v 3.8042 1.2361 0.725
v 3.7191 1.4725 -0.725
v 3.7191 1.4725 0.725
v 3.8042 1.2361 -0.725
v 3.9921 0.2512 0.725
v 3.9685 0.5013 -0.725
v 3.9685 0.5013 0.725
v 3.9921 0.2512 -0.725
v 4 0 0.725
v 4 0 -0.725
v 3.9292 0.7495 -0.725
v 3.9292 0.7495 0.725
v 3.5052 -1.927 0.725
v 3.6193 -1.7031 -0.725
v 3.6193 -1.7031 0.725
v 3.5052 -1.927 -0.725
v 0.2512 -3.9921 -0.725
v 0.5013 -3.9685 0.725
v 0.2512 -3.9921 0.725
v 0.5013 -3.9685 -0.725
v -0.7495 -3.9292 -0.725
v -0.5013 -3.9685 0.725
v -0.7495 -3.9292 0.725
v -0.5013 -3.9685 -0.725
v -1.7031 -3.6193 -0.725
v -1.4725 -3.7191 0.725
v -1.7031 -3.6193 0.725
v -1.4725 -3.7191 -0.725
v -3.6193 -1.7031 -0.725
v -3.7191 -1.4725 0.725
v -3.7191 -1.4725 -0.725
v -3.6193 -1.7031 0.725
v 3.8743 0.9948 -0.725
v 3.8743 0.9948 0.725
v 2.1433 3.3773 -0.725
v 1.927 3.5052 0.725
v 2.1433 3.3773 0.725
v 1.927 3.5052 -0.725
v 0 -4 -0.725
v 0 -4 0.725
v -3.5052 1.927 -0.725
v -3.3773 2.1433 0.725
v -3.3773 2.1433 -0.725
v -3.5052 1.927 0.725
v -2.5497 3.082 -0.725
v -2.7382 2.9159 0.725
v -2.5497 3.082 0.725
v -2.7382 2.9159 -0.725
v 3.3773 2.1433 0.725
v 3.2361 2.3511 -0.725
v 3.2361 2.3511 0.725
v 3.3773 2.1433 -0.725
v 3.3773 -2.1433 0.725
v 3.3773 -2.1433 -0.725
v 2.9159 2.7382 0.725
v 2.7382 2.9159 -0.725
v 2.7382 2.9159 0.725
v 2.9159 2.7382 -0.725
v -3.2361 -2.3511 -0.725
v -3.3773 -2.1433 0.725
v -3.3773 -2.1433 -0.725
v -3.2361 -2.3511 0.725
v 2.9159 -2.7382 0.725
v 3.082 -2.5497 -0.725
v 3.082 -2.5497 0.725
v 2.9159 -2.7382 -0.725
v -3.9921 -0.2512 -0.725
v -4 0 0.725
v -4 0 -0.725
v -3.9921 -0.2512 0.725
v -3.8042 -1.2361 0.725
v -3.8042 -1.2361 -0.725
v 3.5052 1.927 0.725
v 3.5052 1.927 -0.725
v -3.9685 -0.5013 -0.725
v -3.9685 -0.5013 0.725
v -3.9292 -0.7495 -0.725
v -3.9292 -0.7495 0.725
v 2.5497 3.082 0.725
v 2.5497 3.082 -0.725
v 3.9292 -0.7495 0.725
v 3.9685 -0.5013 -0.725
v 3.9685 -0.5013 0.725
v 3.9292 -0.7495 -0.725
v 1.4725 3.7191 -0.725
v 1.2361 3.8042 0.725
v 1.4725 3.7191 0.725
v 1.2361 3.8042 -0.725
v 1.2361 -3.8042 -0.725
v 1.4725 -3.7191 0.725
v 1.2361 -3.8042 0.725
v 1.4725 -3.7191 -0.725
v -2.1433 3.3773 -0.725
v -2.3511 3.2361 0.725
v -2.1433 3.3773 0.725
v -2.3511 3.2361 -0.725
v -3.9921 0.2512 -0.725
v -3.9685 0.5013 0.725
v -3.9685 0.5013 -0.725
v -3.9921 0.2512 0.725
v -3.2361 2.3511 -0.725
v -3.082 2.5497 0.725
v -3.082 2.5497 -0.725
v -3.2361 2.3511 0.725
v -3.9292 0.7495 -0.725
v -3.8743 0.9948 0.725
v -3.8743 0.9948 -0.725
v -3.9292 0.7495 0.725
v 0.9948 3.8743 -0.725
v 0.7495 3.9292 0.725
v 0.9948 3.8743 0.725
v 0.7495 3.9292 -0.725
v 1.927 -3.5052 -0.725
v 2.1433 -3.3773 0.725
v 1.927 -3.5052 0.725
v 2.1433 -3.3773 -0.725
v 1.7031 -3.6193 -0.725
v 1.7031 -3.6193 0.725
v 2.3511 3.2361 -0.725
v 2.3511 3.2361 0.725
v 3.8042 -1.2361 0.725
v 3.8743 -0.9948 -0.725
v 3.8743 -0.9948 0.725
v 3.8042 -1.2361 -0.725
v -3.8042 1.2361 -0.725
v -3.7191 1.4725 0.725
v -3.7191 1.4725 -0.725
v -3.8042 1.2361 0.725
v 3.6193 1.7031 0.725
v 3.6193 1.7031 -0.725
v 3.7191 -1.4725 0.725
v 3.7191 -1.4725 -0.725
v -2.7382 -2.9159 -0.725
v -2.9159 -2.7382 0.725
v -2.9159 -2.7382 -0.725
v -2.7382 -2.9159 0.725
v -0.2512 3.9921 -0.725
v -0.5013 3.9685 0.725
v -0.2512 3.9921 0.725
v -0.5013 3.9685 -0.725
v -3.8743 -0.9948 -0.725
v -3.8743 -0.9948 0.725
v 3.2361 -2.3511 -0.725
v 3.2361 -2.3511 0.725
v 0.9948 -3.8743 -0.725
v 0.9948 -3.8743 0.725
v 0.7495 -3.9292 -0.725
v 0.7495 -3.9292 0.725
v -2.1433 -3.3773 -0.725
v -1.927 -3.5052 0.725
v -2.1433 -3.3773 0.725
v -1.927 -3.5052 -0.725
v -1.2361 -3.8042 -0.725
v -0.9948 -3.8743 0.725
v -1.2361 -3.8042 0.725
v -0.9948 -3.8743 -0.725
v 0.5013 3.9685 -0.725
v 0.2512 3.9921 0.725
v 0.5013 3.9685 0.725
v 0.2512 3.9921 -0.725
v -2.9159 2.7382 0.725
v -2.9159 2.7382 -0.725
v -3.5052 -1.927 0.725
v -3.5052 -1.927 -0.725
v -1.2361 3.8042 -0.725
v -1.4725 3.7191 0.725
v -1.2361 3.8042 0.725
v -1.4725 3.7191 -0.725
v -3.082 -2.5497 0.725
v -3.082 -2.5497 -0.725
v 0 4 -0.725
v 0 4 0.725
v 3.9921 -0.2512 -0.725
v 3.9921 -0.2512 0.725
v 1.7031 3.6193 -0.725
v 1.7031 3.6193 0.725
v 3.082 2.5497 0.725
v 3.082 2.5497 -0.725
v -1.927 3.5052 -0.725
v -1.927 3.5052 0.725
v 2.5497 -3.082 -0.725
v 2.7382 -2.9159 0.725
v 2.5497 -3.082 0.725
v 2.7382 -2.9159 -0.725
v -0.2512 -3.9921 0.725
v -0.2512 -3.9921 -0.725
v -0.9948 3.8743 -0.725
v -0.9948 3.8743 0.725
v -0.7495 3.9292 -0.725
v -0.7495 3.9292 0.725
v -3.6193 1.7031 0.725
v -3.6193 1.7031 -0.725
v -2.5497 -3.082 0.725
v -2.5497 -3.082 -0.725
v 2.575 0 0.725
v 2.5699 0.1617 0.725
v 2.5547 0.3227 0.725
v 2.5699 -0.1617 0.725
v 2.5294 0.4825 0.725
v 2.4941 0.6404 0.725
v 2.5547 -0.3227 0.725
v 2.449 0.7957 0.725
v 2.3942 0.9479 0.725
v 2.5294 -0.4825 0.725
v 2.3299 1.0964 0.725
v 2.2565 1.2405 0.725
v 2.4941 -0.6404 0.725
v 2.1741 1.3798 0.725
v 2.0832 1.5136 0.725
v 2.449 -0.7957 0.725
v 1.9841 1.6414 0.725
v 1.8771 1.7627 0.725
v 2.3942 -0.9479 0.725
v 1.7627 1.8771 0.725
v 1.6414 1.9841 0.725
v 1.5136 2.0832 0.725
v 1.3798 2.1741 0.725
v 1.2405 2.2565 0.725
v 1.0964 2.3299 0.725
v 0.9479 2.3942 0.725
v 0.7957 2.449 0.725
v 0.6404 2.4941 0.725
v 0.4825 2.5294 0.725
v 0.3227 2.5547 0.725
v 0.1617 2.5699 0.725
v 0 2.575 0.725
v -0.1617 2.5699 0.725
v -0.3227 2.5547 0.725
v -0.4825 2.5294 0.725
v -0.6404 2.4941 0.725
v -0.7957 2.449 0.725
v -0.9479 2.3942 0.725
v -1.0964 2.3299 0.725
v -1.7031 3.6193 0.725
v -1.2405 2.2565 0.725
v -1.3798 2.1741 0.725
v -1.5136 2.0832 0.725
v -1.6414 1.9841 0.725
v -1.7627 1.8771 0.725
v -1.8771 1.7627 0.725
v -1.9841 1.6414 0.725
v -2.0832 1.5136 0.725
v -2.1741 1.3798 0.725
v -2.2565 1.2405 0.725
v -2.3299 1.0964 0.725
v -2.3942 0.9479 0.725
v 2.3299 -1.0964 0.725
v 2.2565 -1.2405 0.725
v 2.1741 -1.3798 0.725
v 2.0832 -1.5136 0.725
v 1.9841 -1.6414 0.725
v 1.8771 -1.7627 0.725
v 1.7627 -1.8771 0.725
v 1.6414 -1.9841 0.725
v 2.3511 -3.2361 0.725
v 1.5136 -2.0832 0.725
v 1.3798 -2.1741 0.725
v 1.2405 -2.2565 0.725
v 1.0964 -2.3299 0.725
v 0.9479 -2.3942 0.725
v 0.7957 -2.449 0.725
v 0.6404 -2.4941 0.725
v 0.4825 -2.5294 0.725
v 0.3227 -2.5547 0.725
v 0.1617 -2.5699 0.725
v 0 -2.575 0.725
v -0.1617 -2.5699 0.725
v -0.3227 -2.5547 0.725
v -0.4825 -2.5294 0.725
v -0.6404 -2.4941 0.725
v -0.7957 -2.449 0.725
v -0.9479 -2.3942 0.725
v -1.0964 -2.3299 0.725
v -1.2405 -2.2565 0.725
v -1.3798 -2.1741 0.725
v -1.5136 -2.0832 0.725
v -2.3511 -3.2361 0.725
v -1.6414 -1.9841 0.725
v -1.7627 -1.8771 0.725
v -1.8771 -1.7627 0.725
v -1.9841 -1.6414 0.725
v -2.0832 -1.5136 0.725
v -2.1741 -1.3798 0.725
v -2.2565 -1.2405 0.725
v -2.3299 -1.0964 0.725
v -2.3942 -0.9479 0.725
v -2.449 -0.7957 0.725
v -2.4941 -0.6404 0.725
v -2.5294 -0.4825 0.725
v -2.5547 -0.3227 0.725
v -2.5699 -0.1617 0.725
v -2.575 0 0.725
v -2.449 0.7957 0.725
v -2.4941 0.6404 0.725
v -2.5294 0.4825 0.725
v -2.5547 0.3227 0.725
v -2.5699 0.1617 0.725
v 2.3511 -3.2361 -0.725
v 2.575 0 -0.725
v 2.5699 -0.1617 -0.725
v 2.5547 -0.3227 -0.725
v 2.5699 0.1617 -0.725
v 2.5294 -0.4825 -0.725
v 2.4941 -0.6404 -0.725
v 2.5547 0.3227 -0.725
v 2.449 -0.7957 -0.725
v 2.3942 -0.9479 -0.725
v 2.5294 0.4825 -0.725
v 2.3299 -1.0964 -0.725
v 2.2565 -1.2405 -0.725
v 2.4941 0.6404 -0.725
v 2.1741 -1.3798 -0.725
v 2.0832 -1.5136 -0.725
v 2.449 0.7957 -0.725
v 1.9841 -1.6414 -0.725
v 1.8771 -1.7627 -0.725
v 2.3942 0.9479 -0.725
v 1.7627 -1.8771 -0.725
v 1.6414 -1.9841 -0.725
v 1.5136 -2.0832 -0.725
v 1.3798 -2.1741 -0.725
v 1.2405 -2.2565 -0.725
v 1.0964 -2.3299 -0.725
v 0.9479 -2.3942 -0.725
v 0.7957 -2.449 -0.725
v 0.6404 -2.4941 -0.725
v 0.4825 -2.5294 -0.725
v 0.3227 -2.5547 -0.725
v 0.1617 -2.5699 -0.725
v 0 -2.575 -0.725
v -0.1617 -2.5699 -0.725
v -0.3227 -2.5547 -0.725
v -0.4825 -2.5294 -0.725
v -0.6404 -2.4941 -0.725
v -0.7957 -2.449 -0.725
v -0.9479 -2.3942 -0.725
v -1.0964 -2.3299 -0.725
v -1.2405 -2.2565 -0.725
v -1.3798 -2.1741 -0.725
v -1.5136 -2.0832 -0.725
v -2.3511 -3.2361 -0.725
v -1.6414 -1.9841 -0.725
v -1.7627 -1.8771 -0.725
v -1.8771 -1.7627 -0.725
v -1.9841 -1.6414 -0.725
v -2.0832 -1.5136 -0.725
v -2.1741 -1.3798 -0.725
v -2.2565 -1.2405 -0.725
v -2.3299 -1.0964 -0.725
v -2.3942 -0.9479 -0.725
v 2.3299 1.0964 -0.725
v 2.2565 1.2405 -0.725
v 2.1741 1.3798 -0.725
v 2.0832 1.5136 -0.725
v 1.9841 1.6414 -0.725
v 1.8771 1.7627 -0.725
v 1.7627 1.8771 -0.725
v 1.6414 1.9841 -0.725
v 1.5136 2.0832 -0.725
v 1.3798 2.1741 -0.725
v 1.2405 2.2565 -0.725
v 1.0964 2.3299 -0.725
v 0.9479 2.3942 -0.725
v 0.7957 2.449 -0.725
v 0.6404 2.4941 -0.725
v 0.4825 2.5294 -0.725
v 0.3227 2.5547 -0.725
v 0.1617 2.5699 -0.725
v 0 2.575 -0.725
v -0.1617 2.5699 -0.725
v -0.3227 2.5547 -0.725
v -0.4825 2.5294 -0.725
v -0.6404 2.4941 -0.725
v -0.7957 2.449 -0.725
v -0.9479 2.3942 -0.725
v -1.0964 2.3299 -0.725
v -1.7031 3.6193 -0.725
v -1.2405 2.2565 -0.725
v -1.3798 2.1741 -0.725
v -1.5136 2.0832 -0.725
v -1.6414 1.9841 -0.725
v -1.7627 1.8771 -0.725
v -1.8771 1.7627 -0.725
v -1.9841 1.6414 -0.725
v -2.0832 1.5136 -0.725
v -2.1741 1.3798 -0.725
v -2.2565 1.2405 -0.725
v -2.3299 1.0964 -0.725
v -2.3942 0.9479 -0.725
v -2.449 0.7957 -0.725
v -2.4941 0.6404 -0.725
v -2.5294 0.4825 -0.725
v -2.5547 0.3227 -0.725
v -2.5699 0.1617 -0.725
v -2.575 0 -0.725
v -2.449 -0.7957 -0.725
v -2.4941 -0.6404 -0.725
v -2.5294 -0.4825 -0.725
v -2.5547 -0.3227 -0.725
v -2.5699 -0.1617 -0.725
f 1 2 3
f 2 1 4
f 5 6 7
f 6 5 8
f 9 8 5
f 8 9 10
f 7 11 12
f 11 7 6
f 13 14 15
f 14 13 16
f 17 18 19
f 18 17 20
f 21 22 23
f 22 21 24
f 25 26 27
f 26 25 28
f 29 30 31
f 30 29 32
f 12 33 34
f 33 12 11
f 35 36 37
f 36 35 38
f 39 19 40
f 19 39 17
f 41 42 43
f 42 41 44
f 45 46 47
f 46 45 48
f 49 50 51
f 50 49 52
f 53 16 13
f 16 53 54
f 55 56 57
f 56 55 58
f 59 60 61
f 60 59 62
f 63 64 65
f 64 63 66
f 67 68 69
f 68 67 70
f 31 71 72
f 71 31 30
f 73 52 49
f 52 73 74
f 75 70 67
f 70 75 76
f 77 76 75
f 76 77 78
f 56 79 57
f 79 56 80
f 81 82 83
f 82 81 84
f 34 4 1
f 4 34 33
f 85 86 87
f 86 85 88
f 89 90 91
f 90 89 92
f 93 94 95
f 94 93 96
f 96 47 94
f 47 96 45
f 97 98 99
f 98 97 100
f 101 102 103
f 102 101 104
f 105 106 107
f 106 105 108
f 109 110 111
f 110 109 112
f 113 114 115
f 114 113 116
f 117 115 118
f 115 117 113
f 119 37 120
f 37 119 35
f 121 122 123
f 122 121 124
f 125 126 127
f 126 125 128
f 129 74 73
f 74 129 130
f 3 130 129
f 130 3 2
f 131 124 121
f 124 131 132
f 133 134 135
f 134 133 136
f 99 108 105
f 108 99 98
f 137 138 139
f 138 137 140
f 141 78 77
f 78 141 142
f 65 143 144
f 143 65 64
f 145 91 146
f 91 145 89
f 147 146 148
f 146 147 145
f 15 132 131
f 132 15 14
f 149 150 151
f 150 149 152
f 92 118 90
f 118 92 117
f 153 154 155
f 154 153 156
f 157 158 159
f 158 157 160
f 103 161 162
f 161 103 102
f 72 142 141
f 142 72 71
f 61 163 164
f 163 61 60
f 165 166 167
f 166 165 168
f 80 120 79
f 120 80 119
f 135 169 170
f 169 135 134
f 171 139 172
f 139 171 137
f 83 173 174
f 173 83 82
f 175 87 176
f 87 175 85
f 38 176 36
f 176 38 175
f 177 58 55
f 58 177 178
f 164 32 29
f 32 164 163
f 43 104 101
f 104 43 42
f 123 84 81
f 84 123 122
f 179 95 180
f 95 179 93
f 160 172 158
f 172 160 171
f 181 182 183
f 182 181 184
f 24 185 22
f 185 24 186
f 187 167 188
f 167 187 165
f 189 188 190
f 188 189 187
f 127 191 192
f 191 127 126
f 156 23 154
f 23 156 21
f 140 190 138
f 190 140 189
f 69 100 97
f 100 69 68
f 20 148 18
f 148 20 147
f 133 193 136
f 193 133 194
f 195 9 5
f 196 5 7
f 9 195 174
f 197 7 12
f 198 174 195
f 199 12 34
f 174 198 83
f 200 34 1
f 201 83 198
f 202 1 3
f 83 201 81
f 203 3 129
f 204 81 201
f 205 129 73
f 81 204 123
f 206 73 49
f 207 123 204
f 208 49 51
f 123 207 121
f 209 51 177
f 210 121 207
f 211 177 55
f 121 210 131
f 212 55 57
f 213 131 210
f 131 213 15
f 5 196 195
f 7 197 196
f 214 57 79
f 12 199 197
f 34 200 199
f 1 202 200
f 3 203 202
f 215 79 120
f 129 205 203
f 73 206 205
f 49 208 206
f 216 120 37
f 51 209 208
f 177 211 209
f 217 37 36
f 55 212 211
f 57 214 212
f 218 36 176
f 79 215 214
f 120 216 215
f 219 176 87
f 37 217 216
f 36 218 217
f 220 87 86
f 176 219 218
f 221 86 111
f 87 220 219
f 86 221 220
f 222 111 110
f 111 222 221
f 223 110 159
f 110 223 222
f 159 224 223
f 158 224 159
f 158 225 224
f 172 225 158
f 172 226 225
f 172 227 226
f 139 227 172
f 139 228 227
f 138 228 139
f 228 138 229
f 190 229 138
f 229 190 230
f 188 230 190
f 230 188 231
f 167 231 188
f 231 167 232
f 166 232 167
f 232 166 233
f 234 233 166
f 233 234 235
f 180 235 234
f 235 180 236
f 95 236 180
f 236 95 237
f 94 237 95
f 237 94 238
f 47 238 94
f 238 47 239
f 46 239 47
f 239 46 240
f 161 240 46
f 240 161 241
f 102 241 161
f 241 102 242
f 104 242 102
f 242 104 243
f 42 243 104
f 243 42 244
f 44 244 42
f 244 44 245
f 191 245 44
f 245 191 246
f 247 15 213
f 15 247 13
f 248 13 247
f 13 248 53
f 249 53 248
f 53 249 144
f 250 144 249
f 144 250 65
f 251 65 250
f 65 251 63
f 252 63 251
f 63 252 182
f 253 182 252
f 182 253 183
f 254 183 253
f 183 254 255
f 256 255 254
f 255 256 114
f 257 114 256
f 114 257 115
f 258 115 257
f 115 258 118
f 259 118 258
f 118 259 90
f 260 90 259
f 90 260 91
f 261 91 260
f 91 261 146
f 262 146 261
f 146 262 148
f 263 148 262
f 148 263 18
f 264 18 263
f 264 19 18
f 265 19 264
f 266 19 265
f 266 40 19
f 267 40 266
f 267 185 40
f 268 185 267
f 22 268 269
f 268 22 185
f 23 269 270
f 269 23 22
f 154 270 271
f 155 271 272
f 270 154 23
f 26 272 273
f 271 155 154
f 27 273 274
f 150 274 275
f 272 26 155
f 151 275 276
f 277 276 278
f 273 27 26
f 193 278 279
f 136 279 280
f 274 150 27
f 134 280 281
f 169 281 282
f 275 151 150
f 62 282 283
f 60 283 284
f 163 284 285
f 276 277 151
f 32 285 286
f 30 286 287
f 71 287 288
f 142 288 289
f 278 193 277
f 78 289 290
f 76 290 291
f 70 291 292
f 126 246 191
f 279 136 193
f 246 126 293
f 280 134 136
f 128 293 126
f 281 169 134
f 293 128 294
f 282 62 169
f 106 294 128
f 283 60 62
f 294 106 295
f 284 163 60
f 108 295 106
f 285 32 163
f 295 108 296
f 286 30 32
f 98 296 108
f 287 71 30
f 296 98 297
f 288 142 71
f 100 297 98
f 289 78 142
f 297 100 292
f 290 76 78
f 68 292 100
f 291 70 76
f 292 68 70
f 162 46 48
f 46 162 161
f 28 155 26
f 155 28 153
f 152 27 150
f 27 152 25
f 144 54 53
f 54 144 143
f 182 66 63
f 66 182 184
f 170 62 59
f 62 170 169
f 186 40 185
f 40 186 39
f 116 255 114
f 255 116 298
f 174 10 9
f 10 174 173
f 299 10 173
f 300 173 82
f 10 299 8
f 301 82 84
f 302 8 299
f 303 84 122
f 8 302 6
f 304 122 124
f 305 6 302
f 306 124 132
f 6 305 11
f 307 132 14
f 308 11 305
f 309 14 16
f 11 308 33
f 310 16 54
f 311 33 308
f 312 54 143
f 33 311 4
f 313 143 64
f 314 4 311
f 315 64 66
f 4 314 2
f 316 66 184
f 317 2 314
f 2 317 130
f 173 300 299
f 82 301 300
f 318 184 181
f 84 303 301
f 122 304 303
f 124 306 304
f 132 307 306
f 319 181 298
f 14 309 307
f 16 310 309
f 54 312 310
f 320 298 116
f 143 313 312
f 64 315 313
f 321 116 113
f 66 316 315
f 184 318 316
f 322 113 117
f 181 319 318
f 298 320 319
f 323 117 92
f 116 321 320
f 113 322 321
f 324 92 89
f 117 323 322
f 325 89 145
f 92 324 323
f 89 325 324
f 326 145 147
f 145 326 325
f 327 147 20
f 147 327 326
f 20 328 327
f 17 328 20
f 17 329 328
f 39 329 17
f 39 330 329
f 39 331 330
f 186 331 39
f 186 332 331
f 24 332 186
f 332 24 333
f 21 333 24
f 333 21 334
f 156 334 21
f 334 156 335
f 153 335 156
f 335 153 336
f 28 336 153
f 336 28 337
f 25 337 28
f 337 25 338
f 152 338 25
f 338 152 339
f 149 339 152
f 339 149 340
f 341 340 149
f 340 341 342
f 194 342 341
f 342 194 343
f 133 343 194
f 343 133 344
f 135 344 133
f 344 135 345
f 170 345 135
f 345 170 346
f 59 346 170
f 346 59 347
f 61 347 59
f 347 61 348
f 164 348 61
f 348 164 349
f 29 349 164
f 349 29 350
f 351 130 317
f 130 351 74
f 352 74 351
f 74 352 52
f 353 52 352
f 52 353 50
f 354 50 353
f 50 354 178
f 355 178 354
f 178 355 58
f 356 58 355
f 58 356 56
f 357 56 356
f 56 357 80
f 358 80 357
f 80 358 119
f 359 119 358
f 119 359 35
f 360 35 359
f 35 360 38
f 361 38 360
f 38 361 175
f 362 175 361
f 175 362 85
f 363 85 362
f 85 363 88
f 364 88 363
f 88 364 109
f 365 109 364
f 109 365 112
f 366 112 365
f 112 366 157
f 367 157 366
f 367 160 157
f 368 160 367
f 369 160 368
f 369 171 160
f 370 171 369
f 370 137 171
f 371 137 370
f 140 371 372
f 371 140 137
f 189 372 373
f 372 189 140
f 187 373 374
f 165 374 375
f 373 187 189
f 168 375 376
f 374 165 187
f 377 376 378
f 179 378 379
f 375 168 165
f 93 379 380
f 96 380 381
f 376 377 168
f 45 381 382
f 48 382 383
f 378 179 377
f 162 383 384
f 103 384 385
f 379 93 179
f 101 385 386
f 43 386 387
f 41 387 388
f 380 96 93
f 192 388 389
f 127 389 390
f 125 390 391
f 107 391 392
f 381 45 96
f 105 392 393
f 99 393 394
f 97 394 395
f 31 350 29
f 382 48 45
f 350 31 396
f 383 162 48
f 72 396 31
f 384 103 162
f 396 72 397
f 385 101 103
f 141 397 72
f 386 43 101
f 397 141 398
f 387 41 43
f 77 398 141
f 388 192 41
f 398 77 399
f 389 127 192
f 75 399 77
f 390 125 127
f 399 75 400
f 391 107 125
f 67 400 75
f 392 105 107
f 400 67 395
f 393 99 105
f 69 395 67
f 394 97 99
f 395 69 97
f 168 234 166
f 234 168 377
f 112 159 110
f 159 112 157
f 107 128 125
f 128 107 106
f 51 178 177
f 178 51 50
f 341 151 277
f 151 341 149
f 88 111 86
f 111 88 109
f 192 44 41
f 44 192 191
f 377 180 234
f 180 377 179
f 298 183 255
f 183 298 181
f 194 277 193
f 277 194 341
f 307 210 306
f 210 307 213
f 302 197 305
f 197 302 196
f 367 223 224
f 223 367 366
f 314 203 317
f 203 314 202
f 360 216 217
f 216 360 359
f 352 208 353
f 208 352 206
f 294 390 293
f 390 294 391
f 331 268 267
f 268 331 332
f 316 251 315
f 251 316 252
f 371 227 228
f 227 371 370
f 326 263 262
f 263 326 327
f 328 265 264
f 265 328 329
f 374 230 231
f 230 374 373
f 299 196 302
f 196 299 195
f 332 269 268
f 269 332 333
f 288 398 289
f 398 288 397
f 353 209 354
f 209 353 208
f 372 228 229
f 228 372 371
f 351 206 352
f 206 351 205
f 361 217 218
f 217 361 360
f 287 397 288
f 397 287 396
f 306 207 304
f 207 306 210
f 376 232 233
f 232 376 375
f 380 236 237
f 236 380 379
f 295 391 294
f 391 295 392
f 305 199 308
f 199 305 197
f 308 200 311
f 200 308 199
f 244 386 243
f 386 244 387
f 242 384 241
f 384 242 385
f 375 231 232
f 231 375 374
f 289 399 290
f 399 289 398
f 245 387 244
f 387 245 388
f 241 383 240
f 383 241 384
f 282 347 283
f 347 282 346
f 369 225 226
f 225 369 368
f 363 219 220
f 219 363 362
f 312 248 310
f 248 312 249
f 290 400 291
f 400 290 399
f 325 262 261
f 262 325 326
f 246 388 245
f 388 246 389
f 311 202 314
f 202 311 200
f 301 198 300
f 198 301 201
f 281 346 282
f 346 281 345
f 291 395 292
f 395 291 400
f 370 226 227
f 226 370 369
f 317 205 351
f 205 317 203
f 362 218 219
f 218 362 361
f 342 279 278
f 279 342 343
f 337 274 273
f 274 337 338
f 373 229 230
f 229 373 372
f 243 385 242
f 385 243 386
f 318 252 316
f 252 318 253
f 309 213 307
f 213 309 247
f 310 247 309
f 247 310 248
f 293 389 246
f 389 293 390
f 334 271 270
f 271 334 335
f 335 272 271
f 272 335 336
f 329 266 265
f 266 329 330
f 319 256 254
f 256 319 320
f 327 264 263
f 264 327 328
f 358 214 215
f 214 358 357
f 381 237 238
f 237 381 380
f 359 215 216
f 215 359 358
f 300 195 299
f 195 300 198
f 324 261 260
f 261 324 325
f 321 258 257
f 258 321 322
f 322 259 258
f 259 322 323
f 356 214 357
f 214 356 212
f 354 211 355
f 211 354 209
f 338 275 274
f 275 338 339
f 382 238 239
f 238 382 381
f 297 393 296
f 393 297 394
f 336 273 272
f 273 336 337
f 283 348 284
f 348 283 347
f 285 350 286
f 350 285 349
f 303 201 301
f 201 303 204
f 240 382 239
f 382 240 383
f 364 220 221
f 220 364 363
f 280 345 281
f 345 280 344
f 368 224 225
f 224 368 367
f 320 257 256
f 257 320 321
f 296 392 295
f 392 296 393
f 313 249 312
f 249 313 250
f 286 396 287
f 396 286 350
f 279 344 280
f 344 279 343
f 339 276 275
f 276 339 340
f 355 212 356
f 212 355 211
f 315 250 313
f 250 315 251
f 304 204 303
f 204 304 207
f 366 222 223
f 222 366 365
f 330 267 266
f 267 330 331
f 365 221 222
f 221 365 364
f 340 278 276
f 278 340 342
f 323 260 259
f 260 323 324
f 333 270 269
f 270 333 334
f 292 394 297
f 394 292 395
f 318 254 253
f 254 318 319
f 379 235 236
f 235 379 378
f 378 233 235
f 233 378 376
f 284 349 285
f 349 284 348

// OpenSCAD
// Washer Model with High Smoothness
// All measurements in millimeters

// Define key parameters
thickness = 1.45;    // Washer thickness
outer_d = 8.00;   // Outer diameter
inner_d = 5.15; // 5.08;     // Inner diameter in mm
$fn = 100;        // Smoothness factor for circles

// Main washer construction
difference() {
  // Outer cylinder (main body)
  cylinder(h = thickness, d = outer_d, center = true);

  // Inner cylinder (hole)
  cylinder(h = thickness + 1, d = inner_d, center = true);
}
